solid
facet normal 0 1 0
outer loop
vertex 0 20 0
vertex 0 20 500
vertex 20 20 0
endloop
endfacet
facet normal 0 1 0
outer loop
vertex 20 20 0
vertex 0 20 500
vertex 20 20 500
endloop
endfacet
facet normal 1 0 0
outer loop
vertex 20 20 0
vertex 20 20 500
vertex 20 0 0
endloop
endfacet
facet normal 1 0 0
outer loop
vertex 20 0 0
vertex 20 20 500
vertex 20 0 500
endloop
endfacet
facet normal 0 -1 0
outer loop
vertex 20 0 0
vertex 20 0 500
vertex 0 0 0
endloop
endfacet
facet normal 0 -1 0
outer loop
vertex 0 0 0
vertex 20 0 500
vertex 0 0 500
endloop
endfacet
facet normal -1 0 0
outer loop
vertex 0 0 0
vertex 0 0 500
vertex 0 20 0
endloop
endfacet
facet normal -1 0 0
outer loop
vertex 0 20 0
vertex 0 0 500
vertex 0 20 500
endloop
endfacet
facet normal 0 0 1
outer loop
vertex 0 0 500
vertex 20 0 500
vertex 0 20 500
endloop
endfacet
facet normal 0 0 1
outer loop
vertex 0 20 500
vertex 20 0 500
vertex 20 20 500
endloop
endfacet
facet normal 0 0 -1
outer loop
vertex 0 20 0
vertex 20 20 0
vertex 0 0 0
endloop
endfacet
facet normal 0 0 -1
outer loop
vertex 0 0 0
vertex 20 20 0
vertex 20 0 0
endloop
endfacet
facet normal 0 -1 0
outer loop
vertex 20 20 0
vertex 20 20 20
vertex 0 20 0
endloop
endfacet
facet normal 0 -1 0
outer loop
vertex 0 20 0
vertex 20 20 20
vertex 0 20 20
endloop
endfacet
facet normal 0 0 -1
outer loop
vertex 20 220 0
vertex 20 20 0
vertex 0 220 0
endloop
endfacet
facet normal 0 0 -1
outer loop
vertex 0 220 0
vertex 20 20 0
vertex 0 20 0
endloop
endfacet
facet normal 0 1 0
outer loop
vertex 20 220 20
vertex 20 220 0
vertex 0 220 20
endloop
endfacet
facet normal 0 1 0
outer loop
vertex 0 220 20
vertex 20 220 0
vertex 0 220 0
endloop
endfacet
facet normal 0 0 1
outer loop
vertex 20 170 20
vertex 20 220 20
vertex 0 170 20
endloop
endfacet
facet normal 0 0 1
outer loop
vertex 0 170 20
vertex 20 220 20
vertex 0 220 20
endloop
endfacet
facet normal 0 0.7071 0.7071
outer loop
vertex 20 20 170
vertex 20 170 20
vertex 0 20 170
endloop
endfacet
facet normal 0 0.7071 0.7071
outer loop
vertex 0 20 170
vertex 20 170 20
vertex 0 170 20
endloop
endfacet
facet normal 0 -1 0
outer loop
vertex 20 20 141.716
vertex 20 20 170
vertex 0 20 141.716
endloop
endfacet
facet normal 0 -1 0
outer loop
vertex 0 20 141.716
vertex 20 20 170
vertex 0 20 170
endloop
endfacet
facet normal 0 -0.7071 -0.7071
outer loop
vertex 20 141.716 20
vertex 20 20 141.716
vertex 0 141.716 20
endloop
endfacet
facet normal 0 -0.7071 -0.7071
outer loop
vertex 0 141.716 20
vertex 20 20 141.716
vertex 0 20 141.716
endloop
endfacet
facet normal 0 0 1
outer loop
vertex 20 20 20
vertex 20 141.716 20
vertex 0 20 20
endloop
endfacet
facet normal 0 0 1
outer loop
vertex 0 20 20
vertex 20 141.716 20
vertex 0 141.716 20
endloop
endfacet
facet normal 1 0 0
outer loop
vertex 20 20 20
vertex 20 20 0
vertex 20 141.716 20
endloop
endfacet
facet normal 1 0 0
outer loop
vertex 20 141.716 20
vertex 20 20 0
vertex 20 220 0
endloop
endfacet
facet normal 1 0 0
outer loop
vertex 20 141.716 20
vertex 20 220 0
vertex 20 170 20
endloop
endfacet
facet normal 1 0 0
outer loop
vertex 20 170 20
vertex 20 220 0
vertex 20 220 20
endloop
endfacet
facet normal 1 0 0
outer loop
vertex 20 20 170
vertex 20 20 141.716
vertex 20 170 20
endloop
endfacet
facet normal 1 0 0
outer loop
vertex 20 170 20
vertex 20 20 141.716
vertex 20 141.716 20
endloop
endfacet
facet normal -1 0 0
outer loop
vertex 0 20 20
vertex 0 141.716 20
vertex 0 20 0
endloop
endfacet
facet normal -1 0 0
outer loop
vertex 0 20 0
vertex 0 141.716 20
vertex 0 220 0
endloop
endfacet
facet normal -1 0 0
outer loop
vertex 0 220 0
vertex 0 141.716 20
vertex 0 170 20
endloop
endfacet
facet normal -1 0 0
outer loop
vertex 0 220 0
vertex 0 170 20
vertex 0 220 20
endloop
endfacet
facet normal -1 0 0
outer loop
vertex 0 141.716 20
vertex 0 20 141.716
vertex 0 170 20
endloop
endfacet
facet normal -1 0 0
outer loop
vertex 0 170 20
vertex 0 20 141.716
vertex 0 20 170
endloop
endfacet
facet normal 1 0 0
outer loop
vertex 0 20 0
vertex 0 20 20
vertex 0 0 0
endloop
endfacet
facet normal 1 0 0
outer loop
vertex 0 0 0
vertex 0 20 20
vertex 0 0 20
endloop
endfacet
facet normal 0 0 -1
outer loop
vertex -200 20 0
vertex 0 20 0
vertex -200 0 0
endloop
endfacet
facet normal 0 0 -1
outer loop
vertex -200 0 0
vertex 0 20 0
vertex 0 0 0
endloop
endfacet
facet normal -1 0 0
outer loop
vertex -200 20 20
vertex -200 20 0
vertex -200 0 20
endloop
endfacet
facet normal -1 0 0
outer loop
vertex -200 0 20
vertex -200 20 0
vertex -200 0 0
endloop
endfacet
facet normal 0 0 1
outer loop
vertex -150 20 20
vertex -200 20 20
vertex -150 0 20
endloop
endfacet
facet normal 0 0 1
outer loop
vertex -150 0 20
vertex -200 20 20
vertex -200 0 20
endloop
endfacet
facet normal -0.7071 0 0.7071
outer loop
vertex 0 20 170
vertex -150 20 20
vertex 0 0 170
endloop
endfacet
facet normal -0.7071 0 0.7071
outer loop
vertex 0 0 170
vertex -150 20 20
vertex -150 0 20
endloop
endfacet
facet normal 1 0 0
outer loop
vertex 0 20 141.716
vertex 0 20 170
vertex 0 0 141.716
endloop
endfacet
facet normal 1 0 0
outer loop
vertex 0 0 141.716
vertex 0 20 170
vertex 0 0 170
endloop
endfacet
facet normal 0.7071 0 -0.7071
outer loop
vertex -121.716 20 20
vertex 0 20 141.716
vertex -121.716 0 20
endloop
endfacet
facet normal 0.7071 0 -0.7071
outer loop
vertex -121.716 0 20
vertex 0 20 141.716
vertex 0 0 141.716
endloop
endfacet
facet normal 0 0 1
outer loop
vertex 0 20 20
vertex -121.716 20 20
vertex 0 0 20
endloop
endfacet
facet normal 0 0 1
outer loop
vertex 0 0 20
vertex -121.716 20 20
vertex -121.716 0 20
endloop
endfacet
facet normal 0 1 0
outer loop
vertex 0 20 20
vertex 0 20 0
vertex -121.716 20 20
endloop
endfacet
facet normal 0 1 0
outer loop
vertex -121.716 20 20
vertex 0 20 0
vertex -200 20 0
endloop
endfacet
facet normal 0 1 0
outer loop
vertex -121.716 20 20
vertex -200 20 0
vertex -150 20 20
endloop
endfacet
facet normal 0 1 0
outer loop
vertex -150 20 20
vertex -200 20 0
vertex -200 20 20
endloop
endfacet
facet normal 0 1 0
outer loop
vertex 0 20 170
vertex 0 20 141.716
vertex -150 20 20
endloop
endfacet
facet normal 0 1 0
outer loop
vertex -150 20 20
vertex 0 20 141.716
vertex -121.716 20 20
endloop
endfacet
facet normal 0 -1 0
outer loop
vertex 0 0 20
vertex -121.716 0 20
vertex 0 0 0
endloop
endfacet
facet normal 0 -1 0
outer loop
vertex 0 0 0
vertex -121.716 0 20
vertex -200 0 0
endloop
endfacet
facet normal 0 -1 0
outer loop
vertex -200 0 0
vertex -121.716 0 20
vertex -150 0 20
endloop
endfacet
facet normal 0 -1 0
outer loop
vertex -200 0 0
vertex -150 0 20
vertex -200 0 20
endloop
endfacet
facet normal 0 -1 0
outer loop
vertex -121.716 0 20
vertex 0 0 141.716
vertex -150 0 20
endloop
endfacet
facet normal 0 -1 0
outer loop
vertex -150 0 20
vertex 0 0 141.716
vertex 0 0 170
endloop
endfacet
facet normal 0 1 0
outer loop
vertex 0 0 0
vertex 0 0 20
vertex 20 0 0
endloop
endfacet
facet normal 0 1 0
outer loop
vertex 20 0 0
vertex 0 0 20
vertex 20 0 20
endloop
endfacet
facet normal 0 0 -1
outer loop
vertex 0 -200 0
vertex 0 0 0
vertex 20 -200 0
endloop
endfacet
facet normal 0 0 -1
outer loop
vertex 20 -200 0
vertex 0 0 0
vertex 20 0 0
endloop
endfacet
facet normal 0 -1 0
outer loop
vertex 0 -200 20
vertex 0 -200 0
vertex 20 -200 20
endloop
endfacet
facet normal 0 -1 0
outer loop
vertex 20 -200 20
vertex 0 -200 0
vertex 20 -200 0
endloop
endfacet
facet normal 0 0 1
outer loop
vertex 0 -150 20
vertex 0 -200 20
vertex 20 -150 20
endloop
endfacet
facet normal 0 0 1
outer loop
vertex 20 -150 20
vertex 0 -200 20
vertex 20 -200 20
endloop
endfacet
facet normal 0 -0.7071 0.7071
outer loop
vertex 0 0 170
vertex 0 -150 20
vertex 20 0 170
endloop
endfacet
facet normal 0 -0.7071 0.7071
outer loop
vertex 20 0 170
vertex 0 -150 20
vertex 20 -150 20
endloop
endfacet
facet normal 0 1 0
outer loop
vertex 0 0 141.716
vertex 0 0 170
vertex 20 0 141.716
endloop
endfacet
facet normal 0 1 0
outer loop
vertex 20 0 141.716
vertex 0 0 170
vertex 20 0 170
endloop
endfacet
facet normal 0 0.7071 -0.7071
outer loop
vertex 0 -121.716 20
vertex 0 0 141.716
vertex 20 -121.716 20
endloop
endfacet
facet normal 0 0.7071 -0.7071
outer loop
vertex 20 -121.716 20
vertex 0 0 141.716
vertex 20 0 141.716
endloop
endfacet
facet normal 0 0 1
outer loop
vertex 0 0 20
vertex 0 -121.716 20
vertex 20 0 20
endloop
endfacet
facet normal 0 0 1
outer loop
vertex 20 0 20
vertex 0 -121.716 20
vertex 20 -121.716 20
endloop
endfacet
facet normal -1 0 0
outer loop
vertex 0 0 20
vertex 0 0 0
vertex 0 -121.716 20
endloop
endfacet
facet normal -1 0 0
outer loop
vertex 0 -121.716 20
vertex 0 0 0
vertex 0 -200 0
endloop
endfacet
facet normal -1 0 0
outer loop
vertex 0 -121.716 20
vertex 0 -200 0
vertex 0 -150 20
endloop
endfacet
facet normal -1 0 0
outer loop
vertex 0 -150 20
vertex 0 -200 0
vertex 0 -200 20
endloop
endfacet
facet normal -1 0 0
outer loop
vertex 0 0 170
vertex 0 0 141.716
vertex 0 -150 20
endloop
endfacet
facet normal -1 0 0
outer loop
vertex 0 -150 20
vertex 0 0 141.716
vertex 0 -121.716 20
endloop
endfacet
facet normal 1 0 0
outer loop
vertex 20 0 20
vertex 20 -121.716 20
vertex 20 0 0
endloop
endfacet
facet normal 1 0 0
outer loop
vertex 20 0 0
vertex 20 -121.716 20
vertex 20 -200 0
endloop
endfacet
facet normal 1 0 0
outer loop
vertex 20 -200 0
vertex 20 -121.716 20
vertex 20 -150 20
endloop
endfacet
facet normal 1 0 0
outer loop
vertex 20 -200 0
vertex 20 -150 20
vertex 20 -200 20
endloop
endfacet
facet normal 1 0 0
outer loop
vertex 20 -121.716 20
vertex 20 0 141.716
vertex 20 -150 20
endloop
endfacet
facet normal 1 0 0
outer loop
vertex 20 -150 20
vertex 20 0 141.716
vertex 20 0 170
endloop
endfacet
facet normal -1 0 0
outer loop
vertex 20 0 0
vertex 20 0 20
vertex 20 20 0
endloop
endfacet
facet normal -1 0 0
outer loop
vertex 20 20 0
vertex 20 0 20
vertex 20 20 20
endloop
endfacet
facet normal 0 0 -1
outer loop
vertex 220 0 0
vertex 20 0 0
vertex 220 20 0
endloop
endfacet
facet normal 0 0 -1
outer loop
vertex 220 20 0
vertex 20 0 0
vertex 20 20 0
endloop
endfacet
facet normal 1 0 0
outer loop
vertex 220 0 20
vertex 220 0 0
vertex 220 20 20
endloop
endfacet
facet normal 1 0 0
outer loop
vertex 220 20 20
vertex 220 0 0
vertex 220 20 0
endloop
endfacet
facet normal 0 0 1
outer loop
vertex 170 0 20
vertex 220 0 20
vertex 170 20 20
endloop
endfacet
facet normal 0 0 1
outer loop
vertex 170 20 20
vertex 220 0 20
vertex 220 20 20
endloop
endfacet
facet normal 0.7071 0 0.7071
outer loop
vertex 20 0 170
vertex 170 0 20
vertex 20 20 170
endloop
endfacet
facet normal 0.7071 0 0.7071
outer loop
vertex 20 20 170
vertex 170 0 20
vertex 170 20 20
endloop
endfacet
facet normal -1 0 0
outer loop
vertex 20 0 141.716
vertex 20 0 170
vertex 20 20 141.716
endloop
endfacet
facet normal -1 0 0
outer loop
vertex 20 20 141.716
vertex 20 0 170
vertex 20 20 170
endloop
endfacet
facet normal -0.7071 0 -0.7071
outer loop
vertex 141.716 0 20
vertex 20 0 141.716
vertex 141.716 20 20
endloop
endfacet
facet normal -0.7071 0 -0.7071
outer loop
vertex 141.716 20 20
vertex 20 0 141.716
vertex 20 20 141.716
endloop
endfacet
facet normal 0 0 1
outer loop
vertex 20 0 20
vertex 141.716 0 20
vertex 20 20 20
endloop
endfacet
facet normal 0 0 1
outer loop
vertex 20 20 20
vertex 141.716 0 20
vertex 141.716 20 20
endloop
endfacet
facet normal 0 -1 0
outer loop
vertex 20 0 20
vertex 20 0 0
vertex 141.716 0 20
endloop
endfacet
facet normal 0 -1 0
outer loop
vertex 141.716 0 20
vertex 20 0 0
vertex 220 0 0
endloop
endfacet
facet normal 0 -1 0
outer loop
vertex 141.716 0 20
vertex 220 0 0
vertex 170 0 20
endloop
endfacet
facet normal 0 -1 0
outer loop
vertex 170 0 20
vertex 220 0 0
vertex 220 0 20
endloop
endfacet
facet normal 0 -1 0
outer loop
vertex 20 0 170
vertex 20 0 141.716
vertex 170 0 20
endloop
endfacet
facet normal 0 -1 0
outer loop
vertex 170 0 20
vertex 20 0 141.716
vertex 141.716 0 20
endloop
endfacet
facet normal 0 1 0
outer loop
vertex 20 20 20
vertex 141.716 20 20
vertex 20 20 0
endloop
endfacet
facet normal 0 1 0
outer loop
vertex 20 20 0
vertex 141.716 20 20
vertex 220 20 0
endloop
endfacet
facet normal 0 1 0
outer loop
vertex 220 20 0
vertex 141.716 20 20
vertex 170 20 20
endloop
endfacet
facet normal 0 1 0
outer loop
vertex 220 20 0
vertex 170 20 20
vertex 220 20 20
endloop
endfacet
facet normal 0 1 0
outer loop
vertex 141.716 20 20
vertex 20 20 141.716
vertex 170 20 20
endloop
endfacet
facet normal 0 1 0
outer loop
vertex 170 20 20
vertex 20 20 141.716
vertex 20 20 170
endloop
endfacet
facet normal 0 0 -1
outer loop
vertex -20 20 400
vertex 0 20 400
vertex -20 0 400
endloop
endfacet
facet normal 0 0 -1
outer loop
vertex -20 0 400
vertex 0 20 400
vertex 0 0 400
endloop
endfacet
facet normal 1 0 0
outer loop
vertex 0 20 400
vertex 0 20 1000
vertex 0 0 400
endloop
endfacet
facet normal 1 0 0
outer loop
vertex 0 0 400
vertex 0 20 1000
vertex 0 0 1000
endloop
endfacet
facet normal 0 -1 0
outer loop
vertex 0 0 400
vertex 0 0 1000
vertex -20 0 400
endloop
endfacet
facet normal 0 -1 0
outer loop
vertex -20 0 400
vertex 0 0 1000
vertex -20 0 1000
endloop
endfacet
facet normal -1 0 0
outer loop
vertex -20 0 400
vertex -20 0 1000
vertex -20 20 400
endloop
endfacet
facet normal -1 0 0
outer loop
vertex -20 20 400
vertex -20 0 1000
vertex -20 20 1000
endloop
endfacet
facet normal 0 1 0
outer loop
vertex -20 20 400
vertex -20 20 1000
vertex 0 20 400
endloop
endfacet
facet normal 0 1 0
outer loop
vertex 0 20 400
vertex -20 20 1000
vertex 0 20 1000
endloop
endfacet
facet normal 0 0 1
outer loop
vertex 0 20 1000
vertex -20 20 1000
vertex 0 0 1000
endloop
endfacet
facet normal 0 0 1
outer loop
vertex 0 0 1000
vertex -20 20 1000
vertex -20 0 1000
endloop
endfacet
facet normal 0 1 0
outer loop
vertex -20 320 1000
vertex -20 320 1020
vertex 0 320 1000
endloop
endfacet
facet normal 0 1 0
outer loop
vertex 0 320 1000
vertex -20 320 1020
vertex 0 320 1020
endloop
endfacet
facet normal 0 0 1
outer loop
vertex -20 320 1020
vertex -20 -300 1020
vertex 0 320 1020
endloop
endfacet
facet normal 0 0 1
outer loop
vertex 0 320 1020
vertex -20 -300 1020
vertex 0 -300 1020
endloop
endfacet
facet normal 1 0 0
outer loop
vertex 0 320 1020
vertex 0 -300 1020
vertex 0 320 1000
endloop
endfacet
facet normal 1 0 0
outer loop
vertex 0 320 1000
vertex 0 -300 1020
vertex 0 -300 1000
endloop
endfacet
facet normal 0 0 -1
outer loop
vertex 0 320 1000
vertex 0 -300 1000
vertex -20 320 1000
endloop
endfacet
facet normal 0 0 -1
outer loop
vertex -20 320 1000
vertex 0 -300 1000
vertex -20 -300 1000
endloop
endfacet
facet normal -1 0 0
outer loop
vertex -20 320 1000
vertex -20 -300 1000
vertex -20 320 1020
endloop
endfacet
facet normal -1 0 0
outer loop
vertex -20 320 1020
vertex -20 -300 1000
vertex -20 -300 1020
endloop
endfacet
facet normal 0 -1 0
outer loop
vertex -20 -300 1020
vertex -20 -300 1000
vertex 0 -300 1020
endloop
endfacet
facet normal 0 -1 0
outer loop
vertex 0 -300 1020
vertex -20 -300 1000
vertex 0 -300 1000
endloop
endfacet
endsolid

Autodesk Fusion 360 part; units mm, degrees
sketch "Sketch1" plane through (0, 0, 0) normal (0, 0, 1) x (1, 0, 0)
  line L0 (0, 0) -> (20, 0)
  line L1 (20, 0) -> (20, 20)
  line L2 (20, 20) -> (0, 20)
  line L3 (0, 20) -> (0, 0)
  line L4 (20, 20) -> (0, 0) construction
  line L5 (0, 20) -> (20, 0) construction
  point P0 (10, 10)
  dimension "d1" = 20
  dimension "d2" = 20
extrude "Extrude1" add sketch "Sketch1" along normal blind 500 makes body 1
sketch "Sketch2" plane through (20, 0, 0) normal (1, 0, 0) x (0, 0, -1)
  line L0 (0, 0) -> (0, 20)
  line L1 (0, 20) -> (-500, 20)
  line L2 (-500, 20) -> (-500, 0)
  line L3 (-500, 0) -> (0, 0)
  line L4 (0, 20) -> (-20, 20)
  line L5 (-20, 20) -> (-20, 220)
  line L6 (-20, 220) -> (0, 220)
  line L7 (0, 220) -> (0, 20)
  line L8 (-170, 20) -> (-20, 170)
  line L9 (-20, 141.7157) -> (-141.7157, 20)
  dimension "d5" = 20
  dimension "d6" = 200
  dimension "d7" = 20
  dimension "d8" = 45
  dimension "d9" = 50
extrude "Extrude2" add sketch "Sketch2" against normal blind 20 separate body contours L1 L4 L5 L6 L7 | L1 L5 L8 L9 makes body 2
pattern_circular "C-Pattern1" count 4 over 360 about axis through (10, 10, -20) along (0, 0, 1) of bodies 2 makes body 3 at (-107.2386, 20, 6.6667) makes body 4 at (0, -107.2386, 6.6667) makes body 5 at (127.2386, 0, 6.6667)
sketch "Sketch3" plane through (0, 0, 500) normal (0, 0, 1) x (1, 0, 0)
  line L0 (0, 20) -> (0, 0)
  line L1 (0, 0) -> (20, 0)
  line L2 (20, 0) -> (20, 20)
  line L3 (20, 20) -> (0, 20)
  line L4 (0, 0) -> (-20, 0)
  line L5 (-20, 0) -> (-20, 20)
  line L6 (-20, 20) -> (0, 20)
  line L7 (0, 20) -> (0, 0)
extrude "Extrude3" add sketch "Sketch3" along normal blind 500 and the other way blind 100 separate body contours L0 L4 L5 L6 L7 makes body 6
sketch "Sketch4" plane through (0, 0, 0) normal (0, -1, 0) x (1, 0, 0)
  line L0 (0, 400) -> (0, 1000)
  line L1 (0, 1000) -> (-20, 1000)
  line L2 (-20, 1000) -> (-20, 400)
  line L3 (-20, 400) -> (0, 400)
  line L4 (-20, 1000) -> (0, 1000)
  line L5 (0, 1000) -> (0, 1020)
  line L6 (0, 1020) -> (-20, 1020)
  line L7 (-20, 1020) -> (-20, 1000)
extrude "Extrude4" add sketch "Sketch4" along normal blind 300 and the other way blind 320 separate body contours L1 L4 L5 L6 L7 makes body 7
